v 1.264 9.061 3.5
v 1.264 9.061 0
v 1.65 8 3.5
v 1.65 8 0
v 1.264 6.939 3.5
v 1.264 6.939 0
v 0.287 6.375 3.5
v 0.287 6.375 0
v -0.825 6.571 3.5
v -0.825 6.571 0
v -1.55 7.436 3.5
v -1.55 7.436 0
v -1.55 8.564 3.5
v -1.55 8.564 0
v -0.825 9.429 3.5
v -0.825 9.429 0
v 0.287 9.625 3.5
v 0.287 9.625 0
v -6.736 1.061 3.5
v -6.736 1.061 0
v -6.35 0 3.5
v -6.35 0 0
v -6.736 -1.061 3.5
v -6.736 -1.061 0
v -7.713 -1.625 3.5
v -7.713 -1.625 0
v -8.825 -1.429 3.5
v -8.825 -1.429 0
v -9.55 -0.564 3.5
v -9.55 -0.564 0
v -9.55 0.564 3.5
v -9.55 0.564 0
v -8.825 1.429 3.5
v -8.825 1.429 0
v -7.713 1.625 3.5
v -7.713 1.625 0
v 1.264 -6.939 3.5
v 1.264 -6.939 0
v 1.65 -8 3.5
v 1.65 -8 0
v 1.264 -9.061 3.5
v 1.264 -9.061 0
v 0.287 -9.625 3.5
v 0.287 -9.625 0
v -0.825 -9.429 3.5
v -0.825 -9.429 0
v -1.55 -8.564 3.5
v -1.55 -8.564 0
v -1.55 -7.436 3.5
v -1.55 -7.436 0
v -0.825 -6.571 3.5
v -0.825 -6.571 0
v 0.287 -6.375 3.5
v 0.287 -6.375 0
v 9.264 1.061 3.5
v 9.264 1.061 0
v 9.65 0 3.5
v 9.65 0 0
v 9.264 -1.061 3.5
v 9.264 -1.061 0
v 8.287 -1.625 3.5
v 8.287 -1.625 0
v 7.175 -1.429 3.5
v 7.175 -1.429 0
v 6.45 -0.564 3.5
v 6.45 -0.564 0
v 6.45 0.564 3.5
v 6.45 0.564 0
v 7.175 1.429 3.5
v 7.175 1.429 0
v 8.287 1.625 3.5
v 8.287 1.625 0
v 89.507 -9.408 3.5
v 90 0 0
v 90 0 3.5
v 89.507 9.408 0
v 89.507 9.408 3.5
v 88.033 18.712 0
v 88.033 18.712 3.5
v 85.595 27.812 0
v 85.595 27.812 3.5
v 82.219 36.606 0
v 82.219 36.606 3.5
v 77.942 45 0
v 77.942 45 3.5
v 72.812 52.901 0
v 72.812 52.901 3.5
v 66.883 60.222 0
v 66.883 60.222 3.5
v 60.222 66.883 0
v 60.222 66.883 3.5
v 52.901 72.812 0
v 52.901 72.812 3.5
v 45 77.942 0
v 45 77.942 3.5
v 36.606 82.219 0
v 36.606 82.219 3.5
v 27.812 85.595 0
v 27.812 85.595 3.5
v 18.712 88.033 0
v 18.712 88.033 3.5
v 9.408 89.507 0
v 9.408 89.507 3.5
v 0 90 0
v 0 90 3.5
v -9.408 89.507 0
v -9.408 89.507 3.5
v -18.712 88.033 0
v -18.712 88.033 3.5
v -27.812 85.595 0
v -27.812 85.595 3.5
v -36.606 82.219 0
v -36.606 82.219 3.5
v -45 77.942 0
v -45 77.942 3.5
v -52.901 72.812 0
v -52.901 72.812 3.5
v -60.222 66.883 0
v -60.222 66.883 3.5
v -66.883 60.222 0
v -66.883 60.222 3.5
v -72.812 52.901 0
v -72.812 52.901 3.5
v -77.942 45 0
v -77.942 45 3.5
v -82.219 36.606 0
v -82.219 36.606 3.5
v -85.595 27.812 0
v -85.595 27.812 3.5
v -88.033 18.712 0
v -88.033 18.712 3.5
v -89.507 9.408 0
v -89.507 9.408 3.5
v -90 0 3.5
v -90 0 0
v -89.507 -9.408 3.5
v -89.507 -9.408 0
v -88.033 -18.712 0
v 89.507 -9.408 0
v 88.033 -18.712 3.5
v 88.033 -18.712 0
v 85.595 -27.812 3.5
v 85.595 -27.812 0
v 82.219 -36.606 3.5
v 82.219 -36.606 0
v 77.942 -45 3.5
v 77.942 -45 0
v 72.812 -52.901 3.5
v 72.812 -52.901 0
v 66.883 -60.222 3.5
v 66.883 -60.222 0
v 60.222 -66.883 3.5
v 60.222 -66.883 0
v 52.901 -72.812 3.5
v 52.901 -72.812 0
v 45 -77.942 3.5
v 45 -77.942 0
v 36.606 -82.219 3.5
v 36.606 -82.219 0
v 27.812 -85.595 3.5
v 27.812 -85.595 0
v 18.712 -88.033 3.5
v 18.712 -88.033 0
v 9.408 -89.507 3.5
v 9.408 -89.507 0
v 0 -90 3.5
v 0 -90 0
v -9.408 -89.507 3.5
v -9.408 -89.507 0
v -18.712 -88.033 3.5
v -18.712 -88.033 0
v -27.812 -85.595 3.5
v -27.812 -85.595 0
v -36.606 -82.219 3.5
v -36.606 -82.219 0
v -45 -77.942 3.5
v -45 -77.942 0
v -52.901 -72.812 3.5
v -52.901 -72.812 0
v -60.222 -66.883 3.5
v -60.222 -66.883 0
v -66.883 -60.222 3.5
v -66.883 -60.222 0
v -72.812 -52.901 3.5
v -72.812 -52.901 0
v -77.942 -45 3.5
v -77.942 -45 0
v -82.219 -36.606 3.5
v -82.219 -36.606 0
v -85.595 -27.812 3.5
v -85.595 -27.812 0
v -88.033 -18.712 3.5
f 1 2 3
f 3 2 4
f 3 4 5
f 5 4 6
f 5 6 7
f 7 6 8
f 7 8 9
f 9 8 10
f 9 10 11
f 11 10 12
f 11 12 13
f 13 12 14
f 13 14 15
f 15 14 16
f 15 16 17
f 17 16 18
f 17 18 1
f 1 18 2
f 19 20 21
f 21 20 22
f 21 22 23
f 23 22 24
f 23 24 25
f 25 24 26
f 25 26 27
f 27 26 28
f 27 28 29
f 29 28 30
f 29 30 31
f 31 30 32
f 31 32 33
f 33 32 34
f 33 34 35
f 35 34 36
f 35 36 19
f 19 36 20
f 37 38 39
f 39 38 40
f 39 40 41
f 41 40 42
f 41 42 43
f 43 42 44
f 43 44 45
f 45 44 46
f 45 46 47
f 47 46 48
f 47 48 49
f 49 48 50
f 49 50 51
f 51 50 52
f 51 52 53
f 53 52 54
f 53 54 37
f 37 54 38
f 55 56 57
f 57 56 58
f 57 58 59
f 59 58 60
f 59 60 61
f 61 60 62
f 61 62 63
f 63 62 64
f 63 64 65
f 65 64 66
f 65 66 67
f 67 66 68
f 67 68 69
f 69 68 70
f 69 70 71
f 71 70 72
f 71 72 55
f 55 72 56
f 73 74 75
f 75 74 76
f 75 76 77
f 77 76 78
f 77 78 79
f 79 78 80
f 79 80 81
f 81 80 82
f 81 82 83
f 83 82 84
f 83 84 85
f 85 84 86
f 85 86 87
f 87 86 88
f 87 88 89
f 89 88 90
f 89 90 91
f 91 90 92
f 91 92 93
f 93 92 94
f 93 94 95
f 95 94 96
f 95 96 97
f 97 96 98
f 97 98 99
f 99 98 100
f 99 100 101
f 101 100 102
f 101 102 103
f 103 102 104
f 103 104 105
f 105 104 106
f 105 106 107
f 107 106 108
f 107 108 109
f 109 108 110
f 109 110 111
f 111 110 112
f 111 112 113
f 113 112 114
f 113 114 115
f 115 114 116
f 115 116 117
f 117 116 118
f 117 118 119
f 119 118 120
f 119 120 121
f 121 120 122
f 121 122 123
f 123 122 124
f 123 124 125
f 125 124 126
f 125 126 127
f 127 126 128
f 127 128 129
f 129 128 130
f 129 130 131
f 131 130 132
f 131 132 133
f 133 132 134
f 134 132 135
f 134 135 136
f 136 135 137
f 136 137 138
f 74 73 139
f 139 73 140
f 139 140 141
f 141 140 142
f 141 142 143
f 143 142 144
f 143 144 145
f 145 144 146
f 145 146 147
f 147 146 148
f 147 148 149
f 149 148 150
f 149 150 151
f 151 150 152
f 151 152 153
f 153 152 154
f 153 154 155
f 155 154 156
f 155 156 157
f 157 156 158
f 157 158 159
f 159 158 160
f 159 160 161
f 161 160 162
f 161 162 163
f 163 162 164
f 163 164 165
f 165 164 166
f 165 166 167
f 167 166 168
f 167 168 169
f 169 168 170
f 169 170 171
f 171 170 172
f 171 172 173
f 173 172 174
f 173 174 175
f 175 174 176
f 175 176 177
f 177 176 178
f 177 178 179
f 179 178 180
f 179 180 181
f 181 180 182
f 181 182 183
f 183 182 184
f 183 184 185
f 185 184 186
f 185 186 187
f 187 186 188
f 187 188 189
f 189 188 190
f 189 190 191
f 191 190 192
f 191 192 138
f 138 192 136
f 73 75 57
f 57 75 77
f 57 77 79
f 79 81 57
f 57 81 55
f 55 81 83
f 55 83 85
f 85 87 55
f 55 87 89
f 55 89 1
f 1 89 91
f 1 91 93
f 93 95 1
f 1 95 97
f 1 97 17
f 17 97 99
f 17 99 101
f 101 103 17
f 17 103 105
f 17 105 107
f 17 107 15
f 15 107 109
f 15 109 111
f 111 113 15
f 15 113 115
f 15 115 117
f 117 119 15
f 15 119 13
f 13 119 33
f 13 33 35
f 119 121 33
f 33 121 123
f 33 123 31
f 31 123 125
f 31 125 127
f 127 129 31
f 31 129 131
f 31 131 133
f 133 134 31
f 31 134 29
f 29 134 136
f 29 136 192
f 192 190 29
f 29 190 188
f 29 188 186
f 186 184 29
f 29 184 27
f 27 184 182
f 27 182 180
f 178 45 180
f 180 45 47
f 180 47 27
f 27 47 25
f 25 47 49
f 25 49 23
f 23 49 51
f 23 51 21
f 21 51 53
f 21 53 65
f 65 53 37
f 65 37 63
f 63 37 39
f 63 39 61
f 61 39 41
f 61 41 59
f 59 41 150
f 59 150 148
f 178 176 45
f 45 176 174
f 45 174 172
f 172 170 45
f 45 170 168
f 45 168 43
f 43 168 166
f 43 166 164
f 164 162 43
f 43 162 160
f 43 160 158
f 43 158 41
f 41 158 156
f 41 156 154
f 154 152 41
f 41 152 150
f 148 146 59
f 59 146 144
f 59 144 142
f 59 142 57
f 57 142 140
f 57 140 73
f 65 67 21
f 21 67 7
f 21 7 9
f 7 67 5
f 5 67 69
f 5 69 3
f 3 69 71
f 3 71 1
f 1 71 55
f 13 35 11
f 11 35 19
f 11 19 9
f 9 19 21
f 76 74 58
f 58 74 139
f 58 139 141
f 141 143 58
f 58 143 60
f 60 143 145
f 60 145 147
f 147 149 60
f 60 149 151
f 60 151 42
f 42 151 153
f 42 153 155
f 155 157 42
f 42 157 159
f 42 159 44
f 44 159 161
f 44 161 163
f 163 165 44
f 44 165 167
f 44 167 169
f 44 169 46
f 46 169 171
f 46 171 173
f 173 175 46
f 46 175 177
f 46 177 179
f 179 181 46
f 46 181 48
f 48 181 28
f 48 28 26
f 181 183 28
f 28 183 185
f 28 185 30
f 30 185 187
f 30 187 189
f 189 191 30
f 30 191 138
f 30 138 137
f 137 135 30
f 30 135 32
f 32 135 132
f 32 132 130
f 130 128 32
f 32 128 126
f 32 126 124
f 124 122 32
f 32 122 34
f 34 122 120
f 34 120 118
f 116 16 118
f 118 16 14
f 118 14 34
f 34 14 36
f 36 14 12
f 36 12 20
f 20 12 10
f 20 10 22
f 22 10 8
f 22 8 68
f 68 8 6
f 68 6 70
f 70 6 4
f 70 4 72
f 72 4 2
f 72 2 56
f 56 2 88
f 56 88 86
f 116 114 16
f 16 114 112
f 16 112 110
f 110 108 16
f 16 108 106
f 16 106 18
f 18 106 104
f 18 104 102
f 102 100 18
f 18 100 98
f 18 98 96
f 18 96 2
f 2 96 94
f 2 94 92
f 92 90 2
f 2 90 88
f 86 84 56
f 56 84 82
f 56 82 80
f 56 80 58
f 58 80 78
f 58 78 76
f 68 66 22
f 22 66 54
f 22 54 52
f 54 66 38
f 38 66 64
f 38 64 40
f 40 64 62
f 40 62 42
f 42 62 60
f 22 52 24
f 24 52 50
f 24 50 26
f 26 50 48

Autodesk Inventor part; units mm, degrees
ref_plane "YZ Plane" through (0, 0, 0) normal (1, 0, 0) x (0, 1, 0)
ref_plane "XZ Plane" through (0, 0, 0) normal (0, 1, 0) x (-1, 0, 0)
ref_plane "XY Plane" through (0, 0, 0) normal (0, 0, 1) x (1, 0, 0)
sketch "Sketch1" plane through (0, 0, 0) normal (0, 0, 1) x (1, 0, 0)
  circle A0 centre (0, 0) radius 90
  circle A1 centre (0, 8) radius 1.65
  circle A2 centre (-8, 0) radius 1.65
  circle A3 centre (0, -8) radius 1.65
  circle A4 centre (8, 0) radius 1.65
  dimension "d0" = 180
  dimension "d1" = 3.3
  dimension "d2" = 8
  dimension "d5" = 360
extrude "Extrusion1" add sketch "Sketch1" along normal blind 3.5
equation "\"BendRadius\" = Thickness"
equation "\"BendReliefWidth\" = Thickness"
equation "\"BendReliefDepth\" = 0.5 * Thickness"
equation "\"CornerReliefSize\" = 4 * Thickness"
equation "\"MinimumRemnant\" = 2 * Thickness"
equation "\"TransitionRadius\" = BendRadius"
equation "\"JacobiRadiusSize\" = BendRadius"
equation "\"GapSize\" = Thickness"
equation "\"Thickness\" = 0.5"
properties part number "bàn xoay"
